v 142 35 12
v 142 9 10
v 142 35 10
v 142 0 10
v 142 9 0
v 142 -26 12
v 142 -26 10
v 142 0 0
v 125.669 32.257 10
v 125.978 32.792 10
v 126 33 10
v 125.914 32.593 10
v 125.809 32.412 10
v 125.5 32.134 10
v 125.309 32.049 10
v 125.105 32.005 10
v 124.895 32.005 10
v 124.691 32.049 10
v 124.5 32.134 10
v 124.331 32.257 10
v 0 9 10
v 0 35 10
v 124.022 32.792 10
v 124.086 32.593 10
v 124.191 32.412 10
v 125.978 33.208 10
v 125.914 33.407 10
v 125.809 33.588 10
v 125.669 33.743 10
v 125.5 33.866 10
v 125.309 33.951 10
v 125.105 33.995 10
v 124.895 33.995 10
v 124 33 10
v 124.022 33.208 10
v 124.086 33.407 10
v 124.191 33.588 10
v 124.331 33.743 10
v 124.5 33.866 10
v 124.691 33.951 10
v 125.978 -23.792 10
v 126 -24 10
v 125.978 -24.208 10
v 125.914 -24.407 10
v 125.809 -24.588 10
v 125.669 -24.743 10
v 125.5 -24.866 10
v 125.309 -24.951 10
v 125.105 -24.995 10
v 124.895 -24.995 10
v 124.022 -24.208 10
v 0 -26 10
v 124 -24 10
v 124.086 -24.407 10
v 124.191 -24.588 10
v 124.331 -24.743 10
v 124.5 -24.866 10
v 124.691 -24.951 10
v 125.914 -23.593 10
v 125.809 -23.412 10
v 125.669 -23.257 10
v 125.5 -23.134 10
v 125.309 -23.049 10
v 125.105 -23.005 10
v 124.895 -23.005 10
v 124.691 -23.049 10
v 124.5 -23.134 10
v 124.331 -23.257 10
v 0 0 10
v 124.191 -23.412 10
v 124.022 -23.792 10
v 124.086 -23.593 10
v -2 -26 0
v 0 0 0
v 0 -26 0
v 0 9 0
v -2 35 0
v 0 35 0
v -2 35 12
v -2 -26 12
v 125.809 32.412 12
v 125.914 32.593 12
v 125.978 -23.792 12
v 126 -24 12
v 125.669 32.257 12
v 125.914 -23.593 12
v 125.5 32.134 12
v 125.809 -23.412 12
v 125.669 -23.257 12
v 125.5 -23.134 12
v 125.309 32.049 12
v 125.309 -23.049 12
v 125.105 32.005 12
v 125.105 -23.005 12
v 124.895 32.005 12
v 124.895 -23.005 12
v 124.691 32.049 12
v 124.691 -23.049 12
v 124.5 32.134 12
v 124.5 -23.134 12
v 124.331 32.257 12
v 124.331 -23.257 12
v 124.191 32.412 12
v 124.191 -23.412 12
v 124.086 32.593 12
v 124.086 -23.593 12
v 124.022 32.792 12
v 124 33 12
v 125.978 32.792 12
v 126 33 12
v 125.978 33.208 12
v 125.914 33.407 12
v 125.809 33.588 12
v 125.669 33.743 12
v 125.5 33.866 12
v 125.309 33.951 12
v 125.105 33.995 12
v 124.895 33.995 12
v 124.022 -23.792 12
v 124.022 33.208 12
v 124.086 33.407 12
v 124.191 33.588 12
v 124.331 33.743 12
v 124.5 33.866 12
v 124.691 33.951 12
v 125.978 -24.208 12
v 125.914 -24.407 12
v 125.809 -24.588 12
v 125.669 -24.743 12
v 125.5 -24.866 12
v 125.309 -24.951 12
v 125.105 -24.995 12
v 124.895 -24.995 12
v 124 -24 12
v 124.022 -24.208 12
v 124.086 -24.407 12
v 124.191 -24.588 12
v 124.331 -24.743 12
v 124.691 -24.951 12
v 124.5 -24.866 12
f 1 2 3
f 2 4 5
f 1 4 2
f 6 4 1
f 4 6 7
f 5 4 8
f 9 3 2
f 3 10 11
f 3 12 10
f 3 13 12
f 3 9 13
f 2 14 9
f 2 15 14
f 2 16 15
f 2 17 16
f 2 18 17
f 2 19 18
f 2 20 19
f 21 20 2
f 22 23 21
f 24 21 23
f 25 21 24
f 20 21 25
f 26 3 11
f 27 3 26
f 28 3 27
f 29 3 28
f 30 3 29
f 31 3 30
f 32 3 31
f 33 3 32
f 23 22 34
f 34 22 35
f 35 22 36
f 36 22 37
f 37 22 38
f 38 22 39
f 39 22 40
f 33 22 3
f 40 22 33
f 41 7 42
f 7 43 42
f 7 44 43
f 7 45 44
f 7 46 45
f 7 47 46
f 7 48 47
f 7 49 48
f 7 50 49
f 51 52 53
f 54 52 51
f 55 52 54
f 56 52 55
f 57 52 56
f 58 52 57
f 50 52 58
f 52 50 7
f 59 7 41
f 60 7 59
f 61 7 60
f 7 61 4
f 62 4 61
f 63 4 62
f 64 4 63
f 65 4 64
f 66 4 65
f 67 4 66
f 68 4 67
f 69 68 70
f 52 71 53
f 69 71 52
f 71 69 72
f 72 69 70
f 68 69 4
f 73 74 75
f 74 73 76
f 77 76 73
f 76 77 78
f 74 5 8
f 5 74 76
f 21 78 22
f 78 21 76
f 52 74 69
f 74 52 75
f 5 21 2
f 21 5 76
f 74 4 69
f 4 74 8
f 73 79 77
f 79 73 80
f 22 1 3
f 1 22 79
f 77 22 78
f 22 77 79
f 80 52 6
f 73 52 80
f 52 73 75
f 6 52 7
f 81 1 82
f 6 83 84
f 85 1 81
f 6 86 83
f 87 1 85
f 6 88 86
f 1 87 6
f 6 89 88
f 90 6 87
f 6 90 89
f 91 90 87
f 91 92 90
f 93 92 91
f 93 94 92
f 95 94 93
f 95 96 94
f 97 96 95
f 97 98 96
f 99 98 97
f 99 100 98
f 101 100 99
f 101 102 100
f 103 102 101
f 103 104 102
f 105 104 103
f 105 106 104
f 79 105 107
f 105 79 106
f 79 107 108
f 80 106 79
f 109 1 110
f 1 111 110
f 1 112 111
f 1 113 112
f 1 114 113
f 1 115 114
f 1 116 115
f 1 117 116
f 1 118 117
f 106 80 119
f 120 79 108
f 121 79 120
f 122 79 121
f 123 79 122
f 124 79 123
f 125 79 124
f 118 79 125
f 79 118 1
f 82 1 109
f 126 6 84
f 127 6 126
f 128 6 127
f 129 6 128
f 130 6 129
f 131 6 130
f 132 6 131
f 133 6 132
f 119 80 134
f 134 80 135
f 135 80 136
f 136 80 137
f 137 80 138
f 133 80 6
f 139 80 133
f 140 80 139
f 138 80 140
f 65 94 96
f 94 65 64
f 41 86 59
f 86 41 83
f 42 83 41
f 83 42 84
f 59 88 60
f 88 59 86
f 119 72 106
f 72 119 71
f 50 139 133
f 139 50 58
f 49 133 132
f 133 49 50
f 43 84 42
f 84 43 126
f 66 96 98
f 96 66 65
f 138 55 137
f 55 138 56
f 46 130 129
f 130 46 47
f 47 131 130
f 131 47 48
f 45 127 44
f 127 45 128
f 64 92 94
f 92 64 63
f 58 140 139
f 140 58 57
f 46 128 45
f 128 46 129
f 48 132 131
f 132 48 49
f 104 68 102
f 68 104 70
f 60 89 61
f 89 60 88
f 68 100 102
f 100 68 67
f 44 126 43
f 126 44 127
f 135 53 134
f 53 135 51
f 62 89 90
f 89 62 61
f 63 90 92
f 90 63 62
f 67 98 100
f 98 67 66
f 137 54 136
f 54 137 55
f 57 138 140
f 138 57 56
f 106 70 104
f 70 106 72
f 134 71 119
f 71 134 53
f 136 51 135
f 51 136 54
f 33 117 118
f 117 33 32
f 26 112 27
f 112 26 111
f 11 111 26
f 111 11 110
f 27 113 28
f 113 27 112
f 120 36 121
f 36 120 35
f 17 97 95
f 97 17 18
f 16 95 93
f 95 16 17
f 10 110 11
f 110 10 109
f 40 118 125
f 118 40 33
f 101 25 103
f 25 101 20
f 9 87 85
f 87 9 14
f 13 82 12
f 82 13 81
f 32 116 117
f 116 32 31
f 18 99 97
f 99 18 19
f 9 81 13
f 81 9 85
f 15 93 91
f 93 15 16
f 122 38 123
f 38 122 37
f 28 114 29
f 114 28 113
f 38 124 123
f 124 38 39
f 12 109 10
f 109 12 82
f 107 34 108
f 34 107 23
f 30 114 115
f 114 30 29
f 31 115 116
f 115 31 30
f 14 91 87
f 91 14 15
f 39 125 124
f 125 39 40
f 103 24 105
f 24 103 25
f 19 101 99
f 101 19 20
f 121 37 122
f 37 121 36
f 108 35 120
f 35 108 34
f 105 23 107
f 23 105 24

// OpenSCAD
space    =   9.0;
hole_pos = 125.0;
hole_rad =   7.5;
hole_y   =  24.0;
height   =  10.0;
thickness =  2.0;
$fn = 30;

module spacer() {
    cube( [hole_pos+2*hole_rad+thickness, space, height] );

    translate([-thickness, -hole_y-thickness, 0] )
    cube( [thickness, space+2*hole_y+2*thickness, height] );

    translate([-thickness, -hole_y-thickness, height] )
    cube( [hole_pos+2*hole_rad+2*thickness, space+2*hole_y+2*thickness, thickness] );
}

difference() {
    spacer();

    translate([hole_pos, -hole_y, 0 ])
    cylinder( r = thickness/2, h = 3*height );

    translate([hole_pos, space+hole_y, 0 ])
    cylinder( r = thickness/2, h = 3*height );

    
}

/*
//bridge spacer small
difference() {
    spacer();
    translate([2*hole_y, -3*hole_pos, -2*hole_pos])
    cube([5*hole_pos, 5*hole_pos, 5*hole_pos]);
}
*/
